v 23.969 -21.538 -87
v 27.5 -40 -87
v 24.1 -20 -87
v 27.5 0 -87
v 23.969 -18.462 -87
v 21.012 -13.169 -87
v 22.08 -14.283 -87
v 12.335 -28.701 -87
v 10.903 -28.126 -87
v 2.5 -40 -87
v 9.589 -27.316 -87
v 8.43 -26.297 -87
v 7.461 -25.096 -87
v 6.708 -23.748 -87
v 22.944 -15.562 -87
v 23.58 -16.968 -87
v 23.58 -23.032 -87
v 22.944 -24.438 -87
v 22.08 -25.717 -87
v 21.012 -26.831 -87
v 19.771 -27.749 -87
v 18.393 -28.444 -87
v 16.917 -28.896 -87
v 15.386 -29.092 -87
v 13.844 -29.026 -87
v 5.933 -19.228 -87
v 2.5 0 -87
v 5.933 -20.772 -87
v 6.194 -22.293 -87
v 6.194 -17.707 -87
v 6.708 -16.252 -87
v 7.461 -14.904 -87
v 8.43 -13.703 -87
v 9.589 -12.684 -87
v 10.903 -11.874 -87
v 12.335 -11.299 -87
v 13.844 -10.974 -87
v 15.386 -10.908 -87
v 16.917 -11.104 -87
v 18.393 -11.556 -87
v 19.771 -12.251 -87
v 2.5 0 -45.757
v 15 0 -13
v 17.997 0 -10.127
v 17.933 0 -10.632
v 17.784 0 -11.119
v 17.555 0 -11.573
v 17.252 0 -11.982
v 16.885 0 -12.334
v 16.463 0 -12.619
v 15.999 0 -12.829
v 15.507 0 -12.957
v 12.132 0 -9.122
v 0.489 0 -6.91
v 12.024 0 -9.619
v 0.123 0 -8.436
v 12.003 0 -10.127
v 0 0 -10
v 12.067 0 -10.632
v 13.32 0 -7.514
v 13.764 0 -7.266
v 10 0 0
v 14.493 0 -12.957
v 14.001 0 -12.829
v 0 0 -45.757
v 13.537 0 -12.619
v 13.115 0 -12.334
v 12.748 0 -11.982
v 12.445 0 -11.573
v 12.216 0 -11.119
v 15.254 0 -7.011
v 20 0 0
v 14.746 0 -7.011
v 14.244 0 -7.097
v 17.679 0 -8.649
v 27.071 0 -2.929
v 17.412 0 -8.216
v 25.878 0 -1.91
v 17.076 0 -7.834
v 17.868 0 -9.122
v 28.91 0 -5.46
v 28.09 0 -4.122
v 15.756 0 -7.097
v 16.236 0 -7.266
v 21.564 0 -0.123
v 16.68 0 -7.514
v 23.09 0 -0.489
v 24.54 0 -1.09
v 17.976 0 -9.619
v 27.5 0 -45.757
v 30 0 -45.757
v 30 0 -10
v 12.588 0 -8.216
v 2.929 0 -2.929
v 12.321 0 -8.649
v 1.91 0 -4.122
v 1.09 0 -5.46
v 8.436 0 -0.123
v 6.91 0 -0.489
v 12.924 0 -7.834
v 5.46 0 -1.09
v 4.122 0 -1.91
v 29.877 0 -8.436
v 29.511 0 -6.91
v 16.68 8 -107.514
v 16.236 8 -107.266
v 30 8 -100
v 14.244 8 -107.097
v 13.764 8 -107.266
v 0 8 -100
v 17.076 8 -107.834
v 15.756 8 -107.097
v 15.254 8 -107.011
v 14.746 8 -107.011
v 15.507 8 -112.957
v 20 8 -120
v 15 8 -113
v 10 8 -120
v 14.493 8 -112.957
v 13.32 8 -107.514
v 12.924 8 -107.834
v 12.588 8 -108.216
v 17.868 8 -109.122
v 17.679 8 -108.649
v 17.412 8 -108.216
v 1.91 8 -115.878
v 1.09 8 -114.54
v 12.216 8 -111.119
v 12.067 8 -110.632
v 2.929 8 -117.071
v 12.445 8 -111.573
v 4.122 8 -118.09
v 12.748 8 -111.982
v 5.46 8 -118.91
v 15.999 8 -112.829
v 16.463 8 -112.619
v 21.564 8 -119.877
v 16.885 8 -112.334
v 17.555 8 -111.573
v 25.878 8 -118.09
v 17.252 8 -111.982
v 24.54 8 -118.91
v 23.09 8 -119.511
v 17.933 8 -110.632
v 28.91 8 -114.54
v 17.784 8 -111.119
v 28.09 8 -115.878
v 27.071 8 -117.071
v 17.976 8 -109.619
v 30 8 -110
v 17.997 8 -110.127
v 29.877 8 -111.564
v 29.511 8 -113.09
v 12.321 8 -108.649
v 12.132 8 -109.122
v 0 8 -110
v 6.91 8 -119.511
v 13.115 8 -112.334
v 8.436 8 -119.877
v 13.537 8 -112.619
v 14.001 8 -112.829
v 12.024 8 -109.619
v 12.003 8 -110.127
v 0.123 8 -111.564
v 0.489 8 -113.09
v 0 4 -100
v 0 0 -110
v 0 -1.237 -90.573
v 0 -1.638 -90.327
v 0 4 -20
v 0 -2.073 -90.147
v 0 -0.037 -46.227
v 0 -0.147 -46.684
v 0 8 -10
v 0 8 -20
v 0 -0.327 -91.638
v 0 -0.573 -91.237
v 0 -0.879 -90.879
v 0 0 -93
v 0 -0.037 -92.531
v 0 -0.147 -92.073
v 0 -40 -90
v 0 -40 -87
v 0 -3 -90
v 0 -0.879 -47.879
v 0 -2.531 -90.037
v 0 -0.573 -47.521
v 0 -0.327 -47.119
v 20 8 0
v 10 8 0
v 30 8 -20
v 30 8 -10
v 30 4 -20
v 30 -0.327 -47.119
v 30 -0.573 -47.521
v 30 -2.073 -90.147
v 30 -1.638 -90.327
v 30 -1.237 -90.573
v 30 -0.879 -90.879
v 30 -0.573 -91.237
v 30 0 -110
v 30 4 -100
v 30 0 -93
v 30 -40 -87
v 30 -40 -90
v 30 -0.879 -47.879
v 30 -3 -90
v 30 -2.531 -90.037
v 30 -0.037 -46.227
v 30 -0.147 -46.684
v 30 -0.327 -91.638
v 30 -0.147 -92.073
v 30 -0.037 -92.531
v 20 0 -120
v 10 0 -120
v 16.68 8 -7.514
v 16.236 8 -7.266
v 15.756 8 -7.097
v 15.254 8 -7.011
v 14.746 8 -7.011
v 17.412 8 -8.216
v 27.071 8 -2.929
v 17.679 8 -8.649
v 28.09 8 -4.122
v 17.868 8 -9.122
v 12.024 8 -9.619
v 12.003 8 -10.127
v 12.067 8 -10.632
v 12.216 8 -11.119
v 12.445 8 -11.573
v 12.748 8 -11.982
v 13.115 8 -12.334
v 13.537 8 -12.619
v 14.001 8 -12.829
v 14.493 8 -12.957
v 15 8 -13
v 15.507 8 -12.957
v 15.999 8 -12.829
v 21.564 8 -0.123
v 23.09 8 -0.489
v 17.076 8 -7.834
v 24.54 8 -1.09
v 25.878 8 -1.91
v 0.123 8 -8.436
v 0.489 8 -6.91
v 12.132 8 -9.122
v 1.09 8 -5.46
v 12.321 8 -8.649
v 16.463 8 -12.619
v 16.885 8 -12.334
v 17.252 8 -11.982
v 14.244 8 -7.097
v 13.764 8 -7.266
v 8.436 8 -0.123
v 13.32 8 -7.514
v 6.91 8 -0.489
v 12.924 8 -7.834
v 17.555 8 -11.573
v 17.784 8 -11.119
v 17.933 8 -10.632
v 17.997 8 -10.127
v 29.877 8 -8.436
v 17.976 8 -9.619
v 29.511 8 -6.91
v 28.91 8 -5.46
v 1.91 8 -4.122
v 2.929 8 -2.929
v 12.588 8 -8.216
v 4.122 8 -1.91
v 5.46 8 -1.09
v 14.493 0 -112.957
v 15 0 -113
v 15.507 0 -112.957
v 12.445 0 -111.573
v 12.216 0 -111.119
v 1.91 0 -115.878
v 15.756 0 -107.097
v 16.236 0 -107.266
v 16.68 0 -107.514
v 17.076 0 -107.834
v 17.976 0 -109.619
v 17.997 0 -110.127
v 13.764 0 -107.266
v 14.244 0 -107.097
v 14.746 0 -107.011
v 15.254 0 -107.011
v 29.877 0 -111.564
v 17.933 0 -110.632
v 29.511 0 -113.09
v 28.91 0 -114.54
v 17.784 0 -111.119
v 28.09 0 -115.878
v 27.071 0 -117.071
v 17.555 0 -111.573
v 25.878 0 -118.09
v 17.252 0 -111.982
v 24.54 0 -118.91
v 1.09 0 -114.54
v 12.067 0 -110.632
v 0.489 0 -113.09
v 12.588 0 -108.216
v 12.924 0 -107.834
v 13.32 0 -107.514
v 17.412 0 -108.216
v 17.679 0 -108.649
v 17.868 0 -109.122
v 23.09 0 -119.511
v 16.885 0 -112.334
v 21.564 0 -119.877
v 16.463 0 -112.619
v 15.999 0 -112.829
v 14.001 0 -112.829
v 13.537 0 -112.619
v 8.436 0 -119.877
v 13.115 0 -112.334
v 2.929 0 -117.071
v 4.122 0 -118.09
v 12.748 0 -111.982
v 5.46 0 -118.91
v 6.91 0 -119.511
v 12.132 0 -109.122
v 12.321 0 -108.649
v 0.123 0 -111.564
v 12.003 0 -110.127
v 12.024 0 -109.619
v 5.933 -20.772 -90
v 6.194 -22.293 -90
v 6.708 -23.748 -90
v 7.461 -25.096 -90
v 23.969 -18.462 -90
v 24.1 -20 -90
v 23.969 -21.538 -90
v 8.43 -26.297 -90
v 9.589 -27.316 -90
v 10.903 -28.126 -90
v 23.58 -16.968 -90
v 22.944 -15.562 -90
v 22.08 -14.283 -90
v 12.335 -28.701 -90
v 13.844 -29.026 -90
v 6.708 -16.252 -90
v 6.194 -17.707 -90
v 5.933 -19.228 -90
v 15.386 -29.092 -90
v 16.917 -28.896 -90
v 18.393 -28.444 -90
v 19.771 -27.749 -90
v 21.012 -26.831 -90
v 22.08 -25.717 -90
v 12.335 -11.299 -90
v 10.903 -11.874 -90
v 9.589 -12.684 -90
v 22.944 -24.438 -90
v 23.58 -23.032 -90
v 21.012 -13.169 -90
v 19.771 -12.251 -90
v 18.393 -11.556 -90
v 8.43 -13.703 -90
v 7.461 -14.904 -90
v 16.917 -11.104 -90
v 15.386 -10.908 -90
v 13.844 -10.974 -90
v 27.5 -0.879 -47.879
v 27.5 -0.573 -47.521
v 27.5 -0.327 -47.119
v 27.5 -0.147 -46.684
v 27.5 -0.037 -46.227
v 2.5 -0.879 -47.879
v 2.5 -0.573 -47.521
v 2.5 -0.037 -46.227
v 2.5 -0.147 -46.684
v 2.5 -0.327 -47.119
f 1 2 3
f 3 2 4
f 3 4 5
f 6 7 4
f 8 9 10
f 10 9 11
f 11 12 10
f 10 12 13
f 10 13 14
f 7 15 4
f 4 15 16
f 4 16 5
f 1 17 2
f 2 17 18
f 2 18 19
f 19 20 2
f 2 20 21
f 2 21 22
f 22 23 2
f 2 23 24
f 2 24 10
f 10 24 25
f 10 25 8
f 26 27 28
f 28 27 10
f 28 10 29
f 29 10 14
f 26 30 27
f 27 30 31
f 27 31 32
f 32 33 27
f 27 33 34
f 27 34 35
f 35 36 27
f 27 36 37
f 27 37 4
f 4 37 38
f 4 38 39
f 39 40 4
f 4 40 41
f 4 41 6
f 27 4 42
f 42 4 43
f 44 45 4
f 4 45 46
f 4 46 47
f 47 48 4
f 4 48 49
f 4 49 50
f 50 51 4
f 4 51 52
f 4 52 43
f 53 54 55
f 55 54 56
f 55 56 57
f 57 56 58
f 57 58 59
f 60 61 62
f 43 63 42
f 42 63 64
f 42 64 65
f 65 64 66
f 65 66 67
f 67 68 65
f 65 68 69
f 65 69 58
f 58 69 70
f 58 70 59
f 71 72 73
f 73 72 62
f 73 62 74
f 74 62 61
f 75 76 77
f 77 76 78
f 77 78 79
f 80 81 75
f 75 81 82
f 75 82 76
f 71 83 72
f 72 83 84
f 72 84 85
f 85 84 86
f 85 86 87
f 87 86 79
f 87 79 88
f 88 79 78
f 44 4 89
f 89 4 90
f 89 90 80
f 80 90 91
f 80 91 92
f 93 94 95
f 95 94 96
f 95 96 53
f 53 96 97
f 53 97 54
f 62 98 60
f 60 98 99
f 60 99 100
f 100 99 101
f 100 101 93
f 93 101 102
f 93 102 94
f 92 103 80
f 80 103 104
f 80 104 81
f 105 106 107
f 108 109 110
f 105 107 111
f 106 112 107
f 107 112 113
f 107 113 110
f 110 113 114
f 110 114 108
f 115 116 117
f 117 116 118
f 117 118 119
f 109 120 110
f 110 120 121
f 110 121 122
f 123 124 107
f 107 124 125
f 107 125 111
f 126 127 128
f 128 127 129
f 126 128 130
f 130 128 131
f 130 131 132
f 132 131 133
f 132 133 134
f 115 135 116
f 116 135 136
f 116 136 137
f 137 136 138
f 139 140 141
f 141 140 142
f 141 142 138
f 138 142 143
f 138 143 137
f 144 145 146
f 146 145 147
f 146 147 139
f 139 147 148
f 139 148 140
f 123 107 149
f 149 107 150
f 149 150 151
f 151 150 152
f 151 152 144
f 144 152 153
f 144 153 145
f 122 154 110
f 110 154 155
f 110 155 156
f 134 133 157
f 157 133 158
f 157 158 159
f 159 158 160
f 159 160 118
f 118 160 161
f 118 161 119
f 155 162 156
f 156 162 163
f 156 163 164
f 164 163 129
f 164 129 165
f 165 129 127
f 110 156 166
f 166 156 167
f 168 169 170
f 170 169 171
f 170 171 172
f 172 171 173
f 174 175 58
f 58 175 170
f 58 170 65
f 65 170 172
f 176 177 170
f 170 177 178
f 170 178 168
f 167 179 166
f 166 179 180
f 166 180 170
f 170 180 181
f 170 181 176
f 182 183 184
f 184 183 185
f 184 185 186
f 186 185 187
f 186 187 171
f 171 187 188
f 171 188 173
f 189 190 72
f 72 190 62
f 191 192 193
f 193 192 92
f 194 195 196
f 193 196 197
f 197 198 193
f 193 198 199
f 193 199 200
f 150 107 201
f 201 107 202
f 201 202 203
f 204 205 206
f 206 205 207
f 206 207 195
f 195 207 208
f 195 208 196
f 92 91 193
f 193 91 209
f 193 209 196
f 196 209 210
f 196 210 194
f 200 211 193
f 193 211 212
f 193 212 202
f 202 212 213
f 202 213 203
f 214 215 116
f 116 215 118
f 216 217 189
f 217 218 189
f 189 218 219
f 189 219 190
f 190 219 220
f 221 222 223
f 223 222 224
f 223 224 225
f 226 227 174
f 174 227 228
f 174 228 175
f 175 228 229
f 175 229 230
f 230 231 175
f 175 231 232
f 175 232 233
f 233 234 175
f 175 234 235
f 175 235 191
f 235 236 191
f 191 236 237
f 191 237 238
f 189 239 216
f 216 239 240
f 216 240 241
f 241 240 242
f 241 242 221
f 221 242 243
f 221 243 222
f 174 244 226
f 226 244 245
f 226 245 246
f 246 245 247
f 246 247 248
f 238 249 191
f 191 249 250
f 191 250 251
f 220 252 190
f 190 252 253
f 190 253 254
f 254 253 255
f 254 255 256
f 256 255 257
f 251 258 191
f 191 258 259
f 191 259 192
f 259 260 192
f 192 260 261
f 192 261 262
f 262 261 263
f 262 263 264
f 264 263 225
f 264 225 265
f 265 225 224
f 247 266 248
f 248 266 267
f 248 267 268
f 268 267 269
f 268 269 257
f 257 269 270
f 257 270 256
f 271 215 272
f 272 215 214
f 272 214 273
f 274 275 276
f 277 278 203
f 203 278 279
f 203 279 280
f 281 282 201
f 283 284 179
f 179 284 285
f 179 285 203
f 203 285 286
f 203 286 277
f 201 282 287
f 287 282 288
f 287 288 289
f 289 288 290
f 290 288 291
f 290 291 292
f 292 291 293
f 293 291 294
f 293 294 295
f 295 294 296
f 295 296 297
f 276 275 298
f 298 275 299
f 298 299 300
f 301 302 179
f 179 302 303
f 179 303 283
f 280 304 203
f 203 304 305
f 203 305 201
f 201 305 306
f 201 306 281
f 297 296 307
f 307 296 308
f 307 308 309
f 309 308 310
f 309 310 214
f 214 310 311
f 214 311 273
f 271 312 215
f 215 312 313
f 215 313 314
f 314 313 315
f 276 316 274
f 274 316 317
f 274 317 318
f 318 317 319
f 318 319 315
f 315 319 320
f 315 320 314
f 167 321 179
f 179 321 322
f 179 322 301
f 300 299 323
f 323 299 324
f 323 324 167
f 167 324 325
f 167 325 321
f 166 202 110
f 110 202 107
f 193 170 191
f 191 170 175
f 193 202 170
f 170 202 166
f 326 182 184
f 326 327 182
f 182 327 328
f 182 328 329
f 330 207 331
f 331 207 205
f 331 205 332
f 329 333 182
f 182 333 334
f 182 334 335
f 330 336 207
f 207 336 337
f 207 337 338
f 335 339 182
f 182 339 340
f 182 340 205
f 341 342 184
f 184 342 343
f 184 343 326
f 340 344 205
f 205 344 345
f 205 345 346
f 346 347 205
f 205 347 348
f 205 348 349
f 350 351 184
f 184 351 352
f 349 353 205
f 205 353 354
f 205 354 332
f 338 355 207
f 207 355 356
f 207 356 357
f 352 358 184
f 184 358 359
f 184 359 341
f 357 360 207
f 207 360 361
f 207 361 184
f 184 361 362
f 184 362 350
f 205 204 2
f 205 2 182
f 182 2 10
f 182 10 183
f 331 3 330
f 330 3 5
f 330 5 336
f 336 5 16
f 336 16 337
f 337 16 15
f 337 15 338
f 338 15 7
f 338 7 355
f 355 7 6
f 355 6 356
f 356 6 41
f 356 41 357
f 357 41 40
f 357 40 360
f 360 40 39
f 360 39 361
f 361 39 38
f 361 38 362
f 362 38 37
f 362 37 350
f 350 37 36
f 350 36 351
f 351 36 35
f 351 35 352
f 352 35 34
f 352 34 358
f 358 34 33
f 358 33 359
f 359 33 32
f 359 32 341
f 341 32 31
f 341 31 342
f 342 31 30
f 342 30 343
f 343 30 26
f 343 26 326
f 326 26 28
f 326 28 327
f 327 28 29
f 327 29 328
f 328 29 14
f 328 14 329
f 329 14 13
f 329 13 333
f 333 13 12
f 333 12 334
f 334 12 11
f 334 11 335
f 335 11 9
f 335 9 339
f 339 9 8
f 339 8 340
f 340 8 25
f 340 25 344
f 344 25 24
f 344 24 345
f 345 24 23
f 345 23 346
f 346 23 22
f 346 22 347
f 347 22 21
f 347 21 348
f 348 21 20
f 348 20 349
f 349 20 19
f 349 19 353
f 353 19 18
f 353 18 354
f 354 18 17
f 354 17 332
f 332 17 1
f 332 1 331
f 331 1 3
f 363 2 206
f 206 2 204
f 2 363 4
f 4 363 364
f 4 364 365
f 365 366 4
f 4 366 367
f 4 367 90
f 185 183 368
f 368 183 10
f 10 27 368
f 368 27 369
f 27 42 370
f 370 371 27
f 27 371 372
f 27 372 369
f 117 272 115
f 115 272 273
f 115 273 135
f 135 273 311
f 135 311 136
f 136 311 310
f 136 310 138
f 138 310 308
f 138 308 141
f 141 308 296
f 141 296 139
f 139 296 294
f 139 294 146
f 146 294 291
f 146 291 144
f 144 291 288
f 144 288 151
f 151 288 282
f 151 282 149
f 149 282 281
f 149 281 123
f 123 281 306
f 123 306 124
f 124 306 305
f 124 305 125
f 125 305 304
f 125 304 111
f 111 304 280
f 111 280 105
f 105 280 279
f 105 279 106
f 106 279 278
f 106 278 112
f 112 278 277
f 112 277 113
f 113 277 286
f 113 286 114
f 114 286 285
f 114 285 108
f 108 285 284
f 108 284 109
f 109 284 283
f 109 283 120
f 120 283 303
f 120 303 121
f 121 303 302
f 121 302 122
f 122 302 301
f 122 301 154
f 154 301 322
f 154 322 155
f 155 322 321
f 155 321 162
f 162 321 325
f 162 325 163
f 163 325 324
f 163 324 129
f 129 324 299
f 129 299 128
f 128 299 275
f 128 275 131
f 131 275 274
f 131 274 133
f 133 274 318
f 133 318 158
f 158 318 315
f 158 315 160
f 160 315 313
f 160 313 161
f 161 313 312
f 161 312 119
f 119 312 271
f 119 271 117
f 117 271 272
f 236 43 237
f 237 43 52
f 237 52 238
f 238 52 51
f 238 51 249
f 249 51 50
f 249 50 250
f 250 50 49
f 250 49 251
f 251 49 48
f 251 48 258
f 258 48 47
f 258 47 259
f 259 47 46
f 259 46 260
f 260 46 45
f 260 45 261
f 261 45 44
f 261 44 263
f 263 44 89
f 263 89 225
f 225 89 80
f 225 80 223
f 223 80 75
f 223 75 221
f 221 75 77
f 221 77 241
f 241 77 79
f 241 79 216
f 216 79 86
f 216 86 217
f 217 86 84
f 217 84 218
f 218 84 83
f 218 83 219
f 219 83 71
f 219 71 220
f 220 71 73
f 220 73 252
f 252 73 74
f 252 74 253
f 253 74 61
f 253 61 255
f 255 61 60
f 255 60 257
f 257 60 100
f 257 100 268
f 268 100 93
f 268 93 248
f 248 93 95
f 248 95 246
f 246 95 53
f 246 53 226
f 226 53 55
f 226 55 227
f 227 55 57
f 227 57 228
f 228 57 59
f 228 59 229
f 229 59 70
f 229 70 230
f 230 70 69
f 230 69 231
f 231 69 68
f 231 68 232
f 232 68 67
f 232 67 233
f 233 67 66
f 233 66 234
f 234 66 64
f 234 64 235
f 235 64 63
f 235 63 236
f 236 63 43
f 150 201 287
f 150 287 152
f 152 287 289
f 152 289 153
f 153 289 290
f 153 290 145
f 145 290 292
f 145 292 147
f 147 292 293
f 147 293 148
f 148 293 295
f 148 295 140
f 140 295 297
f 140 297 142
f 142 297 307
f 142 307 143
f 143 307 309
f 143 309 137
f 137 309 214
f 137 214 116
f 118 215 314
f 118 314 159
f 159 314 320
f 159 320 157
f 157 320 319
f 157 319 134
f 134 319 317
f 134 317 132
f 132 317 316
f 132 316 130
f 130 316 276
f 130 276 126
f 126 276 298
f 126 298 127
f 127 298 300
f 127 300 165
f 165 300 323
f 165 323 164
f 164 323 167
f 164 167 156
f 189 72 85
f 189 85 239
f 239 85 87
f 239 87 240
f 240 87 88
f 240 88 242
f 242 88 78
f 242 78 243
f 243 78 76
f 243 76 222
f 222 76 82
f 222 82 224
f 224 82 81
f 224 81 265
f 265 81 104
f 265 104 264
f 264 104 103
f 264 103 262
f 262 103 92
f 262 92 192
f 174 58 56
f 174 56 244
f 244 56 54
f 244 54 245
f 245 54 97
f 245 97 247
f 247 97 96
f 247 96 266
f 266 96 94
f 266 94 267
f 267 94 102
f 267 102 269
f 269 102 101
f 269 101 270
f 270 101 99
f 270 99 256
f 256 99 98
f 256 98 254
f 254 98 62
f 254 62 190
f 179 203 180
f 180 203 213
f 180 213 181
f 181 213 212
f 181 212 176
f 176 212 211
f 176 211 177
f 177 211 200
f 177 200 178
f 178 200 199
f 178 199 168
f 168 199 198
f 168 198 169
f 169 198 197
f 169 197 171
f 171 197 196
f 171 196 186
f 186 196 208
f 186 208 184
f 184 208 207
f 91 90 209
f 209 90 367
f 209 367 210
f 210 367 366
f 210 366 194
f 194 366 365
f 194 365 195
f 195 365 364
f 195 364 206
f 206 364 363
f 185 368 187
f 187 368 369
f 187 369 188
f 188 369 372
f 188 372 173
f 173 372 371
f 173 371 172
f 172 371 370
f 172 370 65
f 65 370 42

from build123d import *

# Parameters (mm, degrees)
SKETCH1_W           = 30
SKETCH1_H           = 120
BOSS_EXTRUDE1_DEPTH = 8
SKETCH2_W           = 30
SKETCH2_H           = 80
CUT_EXTRUDE1_DEPTH  = 4
SKETCH3_W           = 30
SKETCH3_H           = 3
BOSS_EXTRUDE2_DEPTH = 40
SKETCH4_R           = 9.1
CUT_EXTRUDE2_DEPTH  = 40
BOSS_EXTRUDE3_DEPTH = 2.5
BOSS_EXTRUDE4_DEPTH = 2.5
SKETCH7_R           = 3
CUT_EXTRUDE3_DEPTH  = 131
FILLET1_R           = 10
FILLET2_R           = 3
FILLET3_R           = 3


with BuildPart() as part:
    # Sketch1 → Boss-Extrude1 (new body)
    with BuildSketch(Plane(origin=(0, 0, 0), x_dir=(1, 0, 0), z_dir=(0, 1, 0))):
        with Locations((15, 60)):
            Rectangle(SKETCH1_W, SKETCH1_H)
    extrude(amount=BOSS_EXTRUDE1_DEPTH)

    # Sketch2 → Cut-Extrude1 (cut)
    with BuildSketch(Plane(origin=(0, 8, 0), x_dir=(1, 0, 0), z_dir=(0, 1, 0))):
        with Locations((15, 60)):
            Rectangle(SKETCH2_W, SKETCH2_H)
    extrude(amount=-CUT_EXTRUDE1_DEPTH, mode=Mode.SUBTRACT)

    # Sketch3 → Boss-Extrude2 (add)
    with BuildSketch(Plane.XZ):
        with Locations((15, -88.5)):
            Rectangle(SKETCH3_W, SKETCH3_H)
    extrude(amount=BOSS_EXTRUDE2_DEPTH)

    # Sketch4 → Cut-Extrude2 (cut)
    with BuildSketch(Plane.XY.offset(-87)):
        with Locations((15, -20)):
            Circle(SKETCH4_R)
    extrude(amount=-CUT_EXTRUDE2_DEPTH, mode=Mode.SUBTRACT)

    # Sketch5 → Boss-Extrude3 (add)
    with BuildSketch(Plane(origin=(30, 0, 0), x_dir=(0, 0, -1), z_dir=(1, 0, 0))):
        Polygon((87, -40), (47, 0), (87, 0), align=None)
    extrude(amount=-BOSS_EXTRUDE3_DEPTH)

    # Sketch6 → Boss-Extrude4 (add)
    with BuildSketch(Plane.ZY):
        Polygon((-47, 0), (-87, -40), (-87, 0), align=None)
    extrude(amount=-BOSS_EXTRUDE4_DEPTH)

    # Sketch7 → Cut-Extrude3 (cut, through all)
    with BuildSketch(Plane(origin=(0, 0, 0), x_dir=(-1, 0, 0), z_dir=(0, -1, 0))):
        with Locations(Location((-15, 10, 0), (0, 0, 90))):
            Circle(SKETCH7_R)
        with Locations(Location((-15, 110, 0), (0, 0, 90))):
            Circle(SKETCH7_R)
    extrude(amount=-CUT_EXTRUDE3_DEPTH, mode=Mode.SUBTRACT)

    # Fillet1
    fillet1_edges = [part.edges().sort_by_distance(p)[0] for p in [
        (0, 4, -120),
        (30, 4, -120),
        (30, 4, 0),
        (0, 4, 0),
    ]]
    fillet(fillet1_edges, radius=FILLET1_R)

    # Fillet2
    fillet2_edges = [part.edges().sort_by_distance(p)[0] for p in [
        (15, 0, -90),
    ]]
    fillet(fillet2_edges, radius=FILLET2_R)

    # Fillet3
    fillet3_edges = [part.edges().sort_by_distance(p)[0] for p in [
        (28.75, 0, -47),
        (1.25, 0, -47),
    ]]
    fillet(fillet3_edges, radius=FILLET3_R)


solid = part.part
